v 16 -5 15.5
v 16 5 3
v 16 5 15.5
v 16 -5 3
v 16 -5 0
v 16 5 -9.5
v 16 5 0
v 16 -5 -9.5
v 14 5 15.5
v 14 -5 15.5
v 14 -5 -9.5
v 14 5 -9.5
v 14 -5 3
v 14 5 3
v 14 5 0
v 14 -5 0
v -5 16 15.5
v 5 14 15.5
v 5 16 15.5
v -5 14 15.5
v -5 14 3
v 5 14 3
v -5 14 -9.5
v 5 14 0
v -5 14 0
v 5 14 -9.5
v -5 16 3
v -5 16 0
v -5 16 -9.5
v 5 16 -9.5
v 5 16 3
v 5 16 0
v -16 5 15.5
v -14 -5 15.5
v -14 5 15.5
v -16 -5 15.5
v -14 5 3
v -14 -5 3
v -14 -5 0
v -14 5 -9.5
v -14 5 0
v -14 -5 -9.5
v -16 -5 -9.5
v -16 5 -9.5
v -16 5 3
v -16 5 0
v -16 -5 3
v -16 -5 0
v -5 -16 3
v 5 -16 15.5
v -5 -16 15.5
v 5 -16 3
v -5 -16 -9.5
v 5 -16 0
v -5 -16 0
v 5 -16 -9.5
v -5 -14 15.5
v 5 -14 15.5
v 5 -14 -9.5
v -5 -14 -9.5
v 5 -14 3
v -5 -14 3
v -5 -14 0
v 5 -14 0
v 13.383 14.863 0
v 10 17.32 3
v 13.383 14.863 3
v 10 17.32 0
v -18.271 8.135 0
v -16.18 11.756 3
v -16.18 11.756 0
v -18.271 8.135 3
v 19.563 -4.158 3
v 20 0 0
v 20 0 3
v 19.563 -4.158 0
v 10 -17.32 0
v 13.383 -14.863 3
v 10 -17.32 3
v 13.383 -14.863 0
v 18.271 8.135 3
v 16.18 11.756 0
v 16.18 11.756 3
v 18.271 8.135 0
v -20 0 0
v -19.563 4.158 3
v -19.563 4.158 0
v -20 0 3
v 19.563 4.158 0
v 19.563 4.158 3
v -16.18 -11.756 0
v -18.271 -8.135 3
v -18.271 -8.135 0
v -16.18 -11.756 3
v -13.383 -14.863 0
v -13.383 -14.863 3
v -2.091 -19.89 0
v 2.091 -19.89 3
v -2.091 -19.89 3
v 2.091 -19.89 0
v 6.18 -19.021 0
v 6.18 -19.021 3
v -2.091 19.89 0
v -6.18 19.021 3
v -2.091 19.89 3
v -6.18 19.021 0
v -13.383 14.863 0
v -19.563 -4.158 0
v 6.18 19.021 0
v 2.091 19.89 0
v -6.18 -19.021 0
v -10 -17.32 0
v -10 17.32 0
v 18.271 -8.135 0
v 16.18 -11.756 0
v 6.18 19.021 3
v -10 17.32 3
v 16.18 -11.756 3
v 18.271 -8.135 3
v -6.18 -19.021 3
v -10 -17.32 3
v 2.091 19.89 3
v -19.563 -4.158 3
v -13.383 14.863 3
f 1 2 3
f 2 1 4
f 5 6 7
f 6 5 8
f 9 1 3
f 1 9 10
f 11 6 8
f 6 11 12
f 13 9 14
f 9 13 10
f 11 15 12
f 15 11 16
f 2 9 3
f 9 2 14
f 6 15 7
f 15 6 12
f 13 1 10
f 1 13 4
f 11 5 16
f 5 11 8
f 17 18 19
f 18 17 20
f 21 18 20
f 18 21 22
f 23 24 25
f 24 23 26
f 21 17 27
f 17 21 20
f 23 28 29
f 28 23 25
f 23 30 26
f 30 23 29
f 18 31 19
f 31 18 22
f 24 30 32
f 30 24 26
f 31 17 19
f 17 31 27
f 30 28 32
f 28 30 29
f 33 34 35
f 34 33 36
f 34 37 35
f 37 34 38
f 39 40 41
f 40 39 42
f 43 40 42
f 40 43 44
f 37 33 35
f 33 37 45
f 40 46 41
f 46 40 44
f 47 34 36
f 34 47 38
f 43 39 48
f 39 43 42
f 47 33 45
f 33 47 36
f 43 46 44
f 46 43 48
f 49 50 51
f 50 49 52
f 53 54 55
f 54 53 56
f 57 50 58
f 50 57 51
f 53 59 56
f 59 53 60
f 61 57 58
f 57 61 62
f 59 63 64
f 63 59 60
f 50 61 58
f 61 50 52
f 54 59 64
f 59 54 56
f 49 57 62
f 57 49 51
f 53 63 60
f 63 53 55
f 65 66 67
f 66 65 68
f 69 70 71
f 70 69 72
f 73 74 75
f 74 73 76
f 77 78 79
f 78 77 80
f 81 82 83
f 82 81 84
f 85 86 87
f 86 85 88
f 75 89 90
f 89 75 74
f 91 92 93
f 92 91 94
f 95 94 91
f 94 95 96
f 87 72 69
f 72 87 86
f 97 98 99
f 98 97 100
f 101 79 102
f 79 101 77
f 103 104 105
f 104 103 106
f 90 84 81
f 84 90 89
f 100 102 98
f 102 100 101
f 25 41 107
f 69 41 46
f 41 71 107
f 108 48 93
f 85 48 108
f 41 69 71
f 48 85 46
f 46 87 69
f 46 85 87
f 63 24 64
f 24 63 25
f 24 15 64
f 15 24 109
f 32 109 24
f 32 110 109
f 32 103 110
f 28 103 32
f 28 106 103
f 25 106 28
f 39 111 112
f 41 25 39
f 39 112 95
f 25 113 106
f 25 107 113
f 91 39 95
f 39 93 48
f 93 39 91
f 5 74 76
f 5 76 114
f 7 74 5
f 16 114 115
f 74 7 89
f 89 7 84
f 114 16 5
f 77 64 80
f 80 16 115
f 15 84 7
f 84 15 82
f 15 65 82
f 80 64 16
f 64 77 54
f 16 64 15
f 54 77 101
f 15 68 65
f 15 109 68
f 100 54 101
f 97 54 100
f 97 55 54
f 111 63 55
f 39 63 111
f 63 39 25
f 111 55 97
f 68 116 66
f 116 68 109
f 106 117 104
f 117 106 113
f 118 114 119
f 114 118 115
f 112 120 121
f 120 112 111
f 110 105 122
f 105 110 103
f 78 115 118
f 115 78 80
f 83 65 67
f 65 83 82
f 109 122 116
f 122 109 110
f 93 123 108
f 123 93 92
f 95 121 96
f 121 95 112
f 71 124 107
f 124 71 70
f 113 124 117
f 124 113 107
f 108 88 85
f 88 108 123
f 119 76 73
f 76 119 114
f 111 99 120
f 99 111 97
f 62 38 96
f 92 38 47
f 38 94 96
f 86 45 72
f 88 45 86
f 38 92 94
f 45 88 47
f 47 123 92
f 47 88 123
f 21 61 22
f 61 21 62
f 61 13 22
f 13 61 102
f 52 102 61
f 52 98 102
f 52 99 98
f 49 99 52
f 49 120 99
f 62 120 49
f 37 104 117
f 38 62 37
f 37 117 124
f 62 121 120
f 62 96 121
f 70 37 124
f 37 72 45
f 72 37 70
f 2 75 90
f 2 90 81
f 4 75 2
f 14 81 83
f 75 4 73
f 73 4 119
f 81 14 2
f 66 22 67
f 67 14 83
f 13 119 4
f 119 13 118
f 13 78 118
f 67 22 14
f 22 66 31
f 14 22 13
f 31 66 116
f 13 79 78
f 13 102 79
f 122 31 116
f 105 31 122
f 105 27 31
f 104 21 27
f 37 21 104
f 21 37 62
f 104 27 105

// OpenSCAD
// Parameters
base_disk_radius = 20; // Radius of the base disk
base_disk_thickness = 3; // Adjusted thickness of the base disk
prong_width = 2; // Adjusted width of each vertical prong
prong_depth = 10; // Depth of each vertical prong
prong_height = 25; // Adjusted height of each vertical prong
num_prongs = 4; // Number of prongs
prong_spacing_angle = 360 / num_prongs; // Angle between prongs

// Base disk module
module base_disk() {
    cylinder(h = base_disk_thickness, r = base_disk_radius, center = false);
}

// Vertical prong module
module vertical_prong() {
    cube([prong_width, prong_depth, prong_height], center = true);
}

// Assembly
module flexible_coupling() {
    // Layer 2: Base disk
    base_disk();

    // Layer 1: Vertical prongs
    for (i = [0 : num_prongs - 1]) {
        rotate([0, 0, i * prong_spacing_angle]) {
            translate([base_disk_radius - prong_depth / 2, 0, base_disk_thickness]) {
                vertical_prong();
            }
        }
    }
}

// Render the flexible coupling
flexible_coupling();
